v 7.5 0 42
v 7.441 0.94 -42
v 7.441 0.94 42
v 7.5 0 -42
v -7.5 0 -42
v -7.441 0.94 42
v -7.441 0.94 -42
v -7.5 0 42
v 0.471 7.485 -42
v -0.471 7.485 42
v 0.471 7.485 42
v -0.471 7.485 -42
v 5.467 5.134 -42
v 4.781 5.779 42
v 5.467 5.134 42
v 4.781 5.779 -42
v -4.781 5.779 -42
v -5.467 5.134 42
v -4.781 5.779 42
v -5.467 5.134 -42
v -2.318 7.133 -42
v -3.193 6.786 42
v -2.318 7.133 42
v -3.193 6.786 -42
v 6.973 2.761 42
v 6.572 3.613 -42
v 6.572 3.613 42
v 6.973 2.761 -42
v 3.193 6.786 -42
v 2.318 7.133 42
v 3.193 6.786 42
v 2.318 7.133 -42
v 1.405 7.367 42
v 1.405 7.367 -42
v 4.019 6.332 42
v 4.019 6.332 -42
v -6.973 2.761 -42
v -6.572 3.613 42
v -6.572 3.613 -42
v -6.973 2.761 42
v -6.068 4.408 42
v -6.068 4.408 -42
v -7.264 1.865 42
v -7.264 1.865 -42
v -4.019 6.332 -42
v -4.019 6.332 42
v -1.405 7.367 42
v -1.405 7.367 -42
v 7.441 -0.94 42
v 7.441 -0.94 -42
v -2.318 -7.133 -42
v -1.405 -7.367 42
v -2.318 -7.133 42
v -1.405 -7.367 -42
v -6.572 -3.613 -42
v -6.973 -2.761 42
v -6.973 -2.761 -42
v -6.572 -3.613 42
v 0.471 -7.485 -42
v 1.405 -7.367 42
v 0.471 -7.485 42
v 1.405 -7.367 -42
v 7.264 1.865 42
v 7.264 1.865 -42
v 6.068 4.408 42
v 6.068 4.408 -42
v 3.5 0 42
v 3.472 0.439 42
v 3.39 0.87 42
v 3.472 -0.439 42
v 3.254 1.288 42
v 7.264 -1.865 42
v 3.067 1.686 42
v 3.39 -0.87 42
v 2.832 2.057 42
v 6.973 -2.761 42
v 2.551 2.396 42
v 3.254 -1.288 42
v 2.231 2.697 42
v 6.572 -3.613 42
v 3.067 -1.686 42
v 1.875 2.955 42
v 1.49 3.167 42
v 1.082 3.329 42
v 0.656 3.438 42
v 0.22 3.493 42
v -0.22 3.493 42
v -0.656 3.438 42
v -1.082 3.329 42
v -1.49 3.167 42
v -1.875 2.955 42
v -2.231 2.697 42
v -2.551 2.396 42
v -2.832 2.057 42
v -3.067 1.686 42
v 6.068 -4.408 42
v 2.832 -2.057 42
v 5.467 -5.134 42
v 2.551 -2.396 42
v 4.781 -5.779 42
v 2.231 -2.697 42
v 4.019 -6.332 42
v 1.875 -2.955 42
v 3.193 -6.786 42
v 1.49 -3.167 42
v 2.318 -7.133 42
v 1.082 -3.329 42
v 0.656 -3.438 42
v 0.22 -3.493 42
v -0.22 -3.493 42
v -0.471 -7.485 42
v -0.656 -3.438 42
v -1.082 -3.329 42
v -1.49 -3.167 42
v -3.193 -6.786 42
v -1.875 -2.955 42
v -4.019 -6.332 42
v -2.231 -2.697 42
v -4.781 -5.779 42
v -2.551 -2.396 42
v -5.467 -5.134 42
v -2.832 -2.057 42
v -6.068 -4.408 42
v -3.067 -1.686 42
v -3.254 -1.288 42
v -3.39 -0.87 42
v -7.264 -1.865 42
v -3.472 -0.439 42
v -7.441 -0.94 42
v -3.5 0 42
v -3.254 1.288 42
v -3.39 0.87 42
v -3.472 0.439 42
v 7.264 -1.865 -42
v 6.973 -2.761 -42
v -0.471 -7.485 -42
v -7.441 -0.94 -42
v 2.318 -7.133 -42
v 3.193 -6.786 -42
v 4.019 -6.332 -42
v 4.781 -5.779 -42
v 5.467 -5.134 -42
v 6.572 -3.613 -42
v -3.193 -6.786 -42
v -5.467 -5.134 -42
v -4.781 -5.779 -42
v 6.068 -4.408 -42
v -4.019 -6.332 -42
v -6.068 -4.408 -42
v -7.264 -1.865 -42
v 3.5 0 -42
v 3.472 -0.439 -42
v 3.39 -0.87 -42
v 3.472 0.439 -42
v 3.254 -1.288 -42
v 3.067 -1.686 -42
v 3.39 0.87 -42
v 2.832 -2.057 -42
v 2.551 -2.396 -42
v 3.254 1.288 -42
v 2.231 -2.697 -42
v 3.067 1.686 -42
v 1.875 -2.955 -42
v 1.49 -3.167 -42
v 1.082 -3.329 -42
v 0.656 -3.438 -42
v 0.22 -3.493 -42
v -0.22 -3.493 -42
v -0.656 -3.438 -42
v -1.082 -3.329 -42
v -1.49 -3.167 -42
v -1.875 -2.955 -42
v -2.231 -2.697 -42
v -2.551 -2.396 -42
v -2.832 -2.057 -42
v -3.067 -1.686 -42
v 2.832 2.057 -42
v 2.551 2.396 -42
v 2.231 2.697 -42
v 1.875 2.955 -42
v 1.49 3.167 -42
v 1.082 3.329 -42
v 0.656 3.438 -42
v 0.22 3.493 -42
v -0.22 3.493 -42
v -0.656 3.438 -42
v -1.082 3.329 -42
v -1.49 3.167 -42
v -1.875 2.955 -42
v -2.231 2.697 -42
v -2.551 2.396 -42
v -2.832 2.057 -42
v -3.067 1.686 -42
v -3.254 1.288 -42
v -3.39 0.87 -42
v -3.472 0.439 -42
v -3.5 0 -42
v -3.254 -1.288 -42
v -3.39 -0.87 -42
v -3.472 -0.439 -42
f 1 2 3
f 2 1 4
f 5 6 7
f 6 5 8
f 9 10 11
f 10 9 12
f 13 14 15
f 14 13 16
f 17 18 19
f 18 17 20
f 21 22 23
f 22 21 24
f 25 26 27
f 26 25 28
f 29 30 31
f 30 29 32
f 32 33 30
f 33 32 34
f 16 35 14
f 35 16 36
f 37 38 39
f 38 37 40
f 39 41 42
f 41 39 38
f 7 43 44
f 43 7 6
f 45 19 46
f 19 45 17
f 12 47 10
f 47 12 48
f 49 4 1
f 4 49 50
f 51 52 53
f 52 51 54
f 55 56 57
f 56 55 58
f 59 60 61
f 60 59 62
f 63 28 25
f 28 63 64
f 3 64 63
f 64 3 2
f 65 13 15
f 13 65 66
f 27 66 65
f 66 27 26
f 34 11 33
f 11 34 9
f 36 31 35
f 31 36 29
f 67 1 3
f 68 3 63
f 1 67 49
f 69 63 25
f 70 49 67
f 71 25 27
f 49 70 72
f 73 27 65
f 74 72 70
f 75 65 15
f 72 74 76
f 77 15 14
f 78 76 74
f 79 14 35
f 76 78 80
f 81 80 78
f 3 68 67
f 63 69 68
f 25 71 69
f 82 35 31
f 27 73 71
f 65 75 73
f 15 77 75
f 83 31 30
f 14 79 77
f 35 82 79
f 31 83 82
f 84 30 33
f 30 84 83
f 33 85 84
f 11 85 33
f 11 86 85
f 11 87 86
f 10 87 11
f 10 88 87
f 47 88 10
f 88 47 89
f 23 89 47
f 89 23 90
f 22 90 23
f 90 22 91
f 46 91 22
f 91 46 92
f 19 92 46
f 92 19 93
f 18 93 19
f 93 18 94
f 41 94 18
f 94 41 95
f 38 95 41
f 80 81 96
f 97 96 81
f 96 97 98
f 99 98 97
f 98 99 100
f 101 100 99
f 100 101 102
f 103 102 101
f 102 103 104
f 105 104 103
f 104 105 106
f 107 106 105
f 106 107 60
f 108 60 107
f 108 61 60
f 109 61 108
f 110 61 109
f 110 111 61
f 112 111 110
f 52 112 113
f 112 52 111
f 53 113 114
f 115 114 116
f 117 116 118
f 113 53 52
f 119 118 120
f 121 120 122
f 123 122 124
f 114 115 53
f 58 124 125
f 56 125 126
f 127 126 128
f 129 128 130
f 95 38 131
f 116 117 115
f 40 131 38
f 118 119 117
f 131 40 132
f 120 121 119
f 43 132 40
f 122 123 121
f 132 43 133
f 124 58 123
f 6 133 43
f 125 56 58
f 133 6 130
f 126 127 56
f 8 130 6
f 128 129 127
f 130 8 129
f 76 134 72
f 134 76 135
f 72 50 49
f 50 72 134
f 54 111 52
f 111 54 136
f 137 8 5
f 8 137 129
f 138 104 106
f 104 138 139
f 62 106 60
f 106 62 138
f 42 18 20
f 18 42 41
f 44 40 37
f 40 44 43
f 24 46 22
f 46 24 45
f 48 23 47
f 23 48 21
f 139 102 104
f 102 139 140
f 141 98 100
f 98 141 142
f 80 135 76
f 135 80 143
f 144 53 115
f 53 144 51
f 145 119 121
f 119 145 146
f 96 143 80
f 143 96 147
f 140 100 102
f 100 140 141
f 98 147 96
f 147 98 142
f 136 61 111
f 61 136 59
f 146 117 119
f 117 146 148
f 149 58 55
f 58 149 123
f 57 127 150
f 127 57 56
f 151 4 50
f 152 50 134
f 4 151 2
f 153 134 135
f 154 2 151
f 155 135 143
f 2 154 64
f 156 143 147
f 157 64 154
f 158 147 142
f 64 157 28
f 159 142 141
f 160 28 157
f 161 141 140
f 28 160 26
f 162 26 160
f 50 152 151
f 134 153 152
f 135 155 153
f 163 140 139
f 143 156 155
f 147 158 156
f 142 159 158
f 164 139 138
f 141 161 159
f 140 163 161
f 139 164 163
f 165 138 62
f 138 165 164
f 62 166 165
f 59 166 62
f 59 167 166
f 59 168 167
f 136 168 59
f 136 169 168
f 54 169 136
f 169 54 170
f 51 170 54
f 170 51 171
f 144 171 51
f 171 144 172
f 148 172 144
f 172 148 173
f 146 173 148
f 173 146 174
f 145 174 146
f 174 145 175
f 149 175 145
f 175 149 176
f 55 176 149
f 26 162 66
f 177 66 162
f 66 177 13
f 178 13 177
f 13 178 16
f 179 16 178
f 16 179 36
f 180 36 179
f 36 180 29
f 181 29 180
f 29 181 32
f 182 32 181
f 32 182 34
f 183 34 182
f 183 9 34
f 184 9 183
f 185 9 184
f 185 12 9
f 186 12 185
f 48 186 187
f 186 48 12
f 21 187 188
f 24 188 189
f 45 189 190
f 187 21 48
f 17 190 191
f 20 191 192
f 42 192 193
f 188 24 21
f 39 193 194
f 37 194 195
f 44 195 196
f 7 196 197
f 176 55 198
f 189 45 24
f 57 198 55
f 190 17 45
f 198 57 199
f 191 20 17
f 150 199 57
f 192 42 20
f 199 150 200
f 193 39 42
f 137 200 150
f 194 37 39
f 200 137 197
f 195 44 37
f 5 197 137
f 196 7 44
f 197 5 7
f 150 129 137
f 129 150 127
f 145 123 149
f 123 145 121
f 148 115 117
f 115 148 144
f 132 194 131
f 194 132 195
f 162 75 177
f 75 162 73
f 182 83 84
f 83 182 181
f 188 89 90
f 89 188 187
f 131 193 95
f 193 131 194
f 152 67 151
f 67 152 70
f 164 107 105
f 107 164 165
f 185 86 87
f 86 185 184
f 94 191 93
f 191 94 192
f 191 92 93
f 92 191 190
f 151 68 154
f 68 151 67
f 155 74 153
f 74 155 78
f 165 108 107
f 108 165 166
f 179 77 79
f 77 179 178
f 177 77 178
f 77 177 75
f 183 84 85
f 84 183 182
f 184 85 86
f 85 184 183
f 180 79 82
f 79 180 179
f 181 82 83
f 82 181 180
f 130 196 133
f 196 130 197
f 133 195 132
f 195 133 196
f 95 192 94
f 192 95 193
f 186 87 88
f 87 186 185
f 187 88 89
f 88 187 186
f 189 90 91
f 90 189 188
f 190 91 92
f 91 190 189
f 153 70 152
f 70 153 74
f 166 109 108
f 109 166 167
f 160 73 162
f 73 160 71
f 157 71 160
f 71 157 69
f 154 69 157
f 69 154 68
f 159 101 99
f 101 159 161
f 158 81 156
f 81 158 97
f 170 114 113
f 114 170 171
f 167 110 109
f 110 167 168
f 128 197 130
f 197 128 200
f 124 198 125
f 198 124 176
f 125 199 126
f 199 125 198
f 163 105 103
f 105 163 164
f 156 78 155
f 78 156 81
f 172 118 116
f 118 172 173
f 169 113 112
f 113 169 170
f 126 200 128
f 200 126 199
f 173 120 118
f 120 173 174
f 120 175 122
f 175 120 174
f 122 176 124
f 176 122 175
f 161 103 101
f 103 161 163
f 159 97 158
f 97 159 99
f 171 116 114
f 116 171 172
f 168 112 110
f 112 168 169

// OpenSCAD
$fn = 50;


difference() {
	union() {
		translate(v = [0, 0, -42.0000000000]) {
			cylinder(h = 84, r = 7.5000000000);
		}
	}
	union() {
		translate(v = [0, 0, -100.0000000000]) {
			cylinder(h = 200, r = 3.5000000000);
		}
	}
}
